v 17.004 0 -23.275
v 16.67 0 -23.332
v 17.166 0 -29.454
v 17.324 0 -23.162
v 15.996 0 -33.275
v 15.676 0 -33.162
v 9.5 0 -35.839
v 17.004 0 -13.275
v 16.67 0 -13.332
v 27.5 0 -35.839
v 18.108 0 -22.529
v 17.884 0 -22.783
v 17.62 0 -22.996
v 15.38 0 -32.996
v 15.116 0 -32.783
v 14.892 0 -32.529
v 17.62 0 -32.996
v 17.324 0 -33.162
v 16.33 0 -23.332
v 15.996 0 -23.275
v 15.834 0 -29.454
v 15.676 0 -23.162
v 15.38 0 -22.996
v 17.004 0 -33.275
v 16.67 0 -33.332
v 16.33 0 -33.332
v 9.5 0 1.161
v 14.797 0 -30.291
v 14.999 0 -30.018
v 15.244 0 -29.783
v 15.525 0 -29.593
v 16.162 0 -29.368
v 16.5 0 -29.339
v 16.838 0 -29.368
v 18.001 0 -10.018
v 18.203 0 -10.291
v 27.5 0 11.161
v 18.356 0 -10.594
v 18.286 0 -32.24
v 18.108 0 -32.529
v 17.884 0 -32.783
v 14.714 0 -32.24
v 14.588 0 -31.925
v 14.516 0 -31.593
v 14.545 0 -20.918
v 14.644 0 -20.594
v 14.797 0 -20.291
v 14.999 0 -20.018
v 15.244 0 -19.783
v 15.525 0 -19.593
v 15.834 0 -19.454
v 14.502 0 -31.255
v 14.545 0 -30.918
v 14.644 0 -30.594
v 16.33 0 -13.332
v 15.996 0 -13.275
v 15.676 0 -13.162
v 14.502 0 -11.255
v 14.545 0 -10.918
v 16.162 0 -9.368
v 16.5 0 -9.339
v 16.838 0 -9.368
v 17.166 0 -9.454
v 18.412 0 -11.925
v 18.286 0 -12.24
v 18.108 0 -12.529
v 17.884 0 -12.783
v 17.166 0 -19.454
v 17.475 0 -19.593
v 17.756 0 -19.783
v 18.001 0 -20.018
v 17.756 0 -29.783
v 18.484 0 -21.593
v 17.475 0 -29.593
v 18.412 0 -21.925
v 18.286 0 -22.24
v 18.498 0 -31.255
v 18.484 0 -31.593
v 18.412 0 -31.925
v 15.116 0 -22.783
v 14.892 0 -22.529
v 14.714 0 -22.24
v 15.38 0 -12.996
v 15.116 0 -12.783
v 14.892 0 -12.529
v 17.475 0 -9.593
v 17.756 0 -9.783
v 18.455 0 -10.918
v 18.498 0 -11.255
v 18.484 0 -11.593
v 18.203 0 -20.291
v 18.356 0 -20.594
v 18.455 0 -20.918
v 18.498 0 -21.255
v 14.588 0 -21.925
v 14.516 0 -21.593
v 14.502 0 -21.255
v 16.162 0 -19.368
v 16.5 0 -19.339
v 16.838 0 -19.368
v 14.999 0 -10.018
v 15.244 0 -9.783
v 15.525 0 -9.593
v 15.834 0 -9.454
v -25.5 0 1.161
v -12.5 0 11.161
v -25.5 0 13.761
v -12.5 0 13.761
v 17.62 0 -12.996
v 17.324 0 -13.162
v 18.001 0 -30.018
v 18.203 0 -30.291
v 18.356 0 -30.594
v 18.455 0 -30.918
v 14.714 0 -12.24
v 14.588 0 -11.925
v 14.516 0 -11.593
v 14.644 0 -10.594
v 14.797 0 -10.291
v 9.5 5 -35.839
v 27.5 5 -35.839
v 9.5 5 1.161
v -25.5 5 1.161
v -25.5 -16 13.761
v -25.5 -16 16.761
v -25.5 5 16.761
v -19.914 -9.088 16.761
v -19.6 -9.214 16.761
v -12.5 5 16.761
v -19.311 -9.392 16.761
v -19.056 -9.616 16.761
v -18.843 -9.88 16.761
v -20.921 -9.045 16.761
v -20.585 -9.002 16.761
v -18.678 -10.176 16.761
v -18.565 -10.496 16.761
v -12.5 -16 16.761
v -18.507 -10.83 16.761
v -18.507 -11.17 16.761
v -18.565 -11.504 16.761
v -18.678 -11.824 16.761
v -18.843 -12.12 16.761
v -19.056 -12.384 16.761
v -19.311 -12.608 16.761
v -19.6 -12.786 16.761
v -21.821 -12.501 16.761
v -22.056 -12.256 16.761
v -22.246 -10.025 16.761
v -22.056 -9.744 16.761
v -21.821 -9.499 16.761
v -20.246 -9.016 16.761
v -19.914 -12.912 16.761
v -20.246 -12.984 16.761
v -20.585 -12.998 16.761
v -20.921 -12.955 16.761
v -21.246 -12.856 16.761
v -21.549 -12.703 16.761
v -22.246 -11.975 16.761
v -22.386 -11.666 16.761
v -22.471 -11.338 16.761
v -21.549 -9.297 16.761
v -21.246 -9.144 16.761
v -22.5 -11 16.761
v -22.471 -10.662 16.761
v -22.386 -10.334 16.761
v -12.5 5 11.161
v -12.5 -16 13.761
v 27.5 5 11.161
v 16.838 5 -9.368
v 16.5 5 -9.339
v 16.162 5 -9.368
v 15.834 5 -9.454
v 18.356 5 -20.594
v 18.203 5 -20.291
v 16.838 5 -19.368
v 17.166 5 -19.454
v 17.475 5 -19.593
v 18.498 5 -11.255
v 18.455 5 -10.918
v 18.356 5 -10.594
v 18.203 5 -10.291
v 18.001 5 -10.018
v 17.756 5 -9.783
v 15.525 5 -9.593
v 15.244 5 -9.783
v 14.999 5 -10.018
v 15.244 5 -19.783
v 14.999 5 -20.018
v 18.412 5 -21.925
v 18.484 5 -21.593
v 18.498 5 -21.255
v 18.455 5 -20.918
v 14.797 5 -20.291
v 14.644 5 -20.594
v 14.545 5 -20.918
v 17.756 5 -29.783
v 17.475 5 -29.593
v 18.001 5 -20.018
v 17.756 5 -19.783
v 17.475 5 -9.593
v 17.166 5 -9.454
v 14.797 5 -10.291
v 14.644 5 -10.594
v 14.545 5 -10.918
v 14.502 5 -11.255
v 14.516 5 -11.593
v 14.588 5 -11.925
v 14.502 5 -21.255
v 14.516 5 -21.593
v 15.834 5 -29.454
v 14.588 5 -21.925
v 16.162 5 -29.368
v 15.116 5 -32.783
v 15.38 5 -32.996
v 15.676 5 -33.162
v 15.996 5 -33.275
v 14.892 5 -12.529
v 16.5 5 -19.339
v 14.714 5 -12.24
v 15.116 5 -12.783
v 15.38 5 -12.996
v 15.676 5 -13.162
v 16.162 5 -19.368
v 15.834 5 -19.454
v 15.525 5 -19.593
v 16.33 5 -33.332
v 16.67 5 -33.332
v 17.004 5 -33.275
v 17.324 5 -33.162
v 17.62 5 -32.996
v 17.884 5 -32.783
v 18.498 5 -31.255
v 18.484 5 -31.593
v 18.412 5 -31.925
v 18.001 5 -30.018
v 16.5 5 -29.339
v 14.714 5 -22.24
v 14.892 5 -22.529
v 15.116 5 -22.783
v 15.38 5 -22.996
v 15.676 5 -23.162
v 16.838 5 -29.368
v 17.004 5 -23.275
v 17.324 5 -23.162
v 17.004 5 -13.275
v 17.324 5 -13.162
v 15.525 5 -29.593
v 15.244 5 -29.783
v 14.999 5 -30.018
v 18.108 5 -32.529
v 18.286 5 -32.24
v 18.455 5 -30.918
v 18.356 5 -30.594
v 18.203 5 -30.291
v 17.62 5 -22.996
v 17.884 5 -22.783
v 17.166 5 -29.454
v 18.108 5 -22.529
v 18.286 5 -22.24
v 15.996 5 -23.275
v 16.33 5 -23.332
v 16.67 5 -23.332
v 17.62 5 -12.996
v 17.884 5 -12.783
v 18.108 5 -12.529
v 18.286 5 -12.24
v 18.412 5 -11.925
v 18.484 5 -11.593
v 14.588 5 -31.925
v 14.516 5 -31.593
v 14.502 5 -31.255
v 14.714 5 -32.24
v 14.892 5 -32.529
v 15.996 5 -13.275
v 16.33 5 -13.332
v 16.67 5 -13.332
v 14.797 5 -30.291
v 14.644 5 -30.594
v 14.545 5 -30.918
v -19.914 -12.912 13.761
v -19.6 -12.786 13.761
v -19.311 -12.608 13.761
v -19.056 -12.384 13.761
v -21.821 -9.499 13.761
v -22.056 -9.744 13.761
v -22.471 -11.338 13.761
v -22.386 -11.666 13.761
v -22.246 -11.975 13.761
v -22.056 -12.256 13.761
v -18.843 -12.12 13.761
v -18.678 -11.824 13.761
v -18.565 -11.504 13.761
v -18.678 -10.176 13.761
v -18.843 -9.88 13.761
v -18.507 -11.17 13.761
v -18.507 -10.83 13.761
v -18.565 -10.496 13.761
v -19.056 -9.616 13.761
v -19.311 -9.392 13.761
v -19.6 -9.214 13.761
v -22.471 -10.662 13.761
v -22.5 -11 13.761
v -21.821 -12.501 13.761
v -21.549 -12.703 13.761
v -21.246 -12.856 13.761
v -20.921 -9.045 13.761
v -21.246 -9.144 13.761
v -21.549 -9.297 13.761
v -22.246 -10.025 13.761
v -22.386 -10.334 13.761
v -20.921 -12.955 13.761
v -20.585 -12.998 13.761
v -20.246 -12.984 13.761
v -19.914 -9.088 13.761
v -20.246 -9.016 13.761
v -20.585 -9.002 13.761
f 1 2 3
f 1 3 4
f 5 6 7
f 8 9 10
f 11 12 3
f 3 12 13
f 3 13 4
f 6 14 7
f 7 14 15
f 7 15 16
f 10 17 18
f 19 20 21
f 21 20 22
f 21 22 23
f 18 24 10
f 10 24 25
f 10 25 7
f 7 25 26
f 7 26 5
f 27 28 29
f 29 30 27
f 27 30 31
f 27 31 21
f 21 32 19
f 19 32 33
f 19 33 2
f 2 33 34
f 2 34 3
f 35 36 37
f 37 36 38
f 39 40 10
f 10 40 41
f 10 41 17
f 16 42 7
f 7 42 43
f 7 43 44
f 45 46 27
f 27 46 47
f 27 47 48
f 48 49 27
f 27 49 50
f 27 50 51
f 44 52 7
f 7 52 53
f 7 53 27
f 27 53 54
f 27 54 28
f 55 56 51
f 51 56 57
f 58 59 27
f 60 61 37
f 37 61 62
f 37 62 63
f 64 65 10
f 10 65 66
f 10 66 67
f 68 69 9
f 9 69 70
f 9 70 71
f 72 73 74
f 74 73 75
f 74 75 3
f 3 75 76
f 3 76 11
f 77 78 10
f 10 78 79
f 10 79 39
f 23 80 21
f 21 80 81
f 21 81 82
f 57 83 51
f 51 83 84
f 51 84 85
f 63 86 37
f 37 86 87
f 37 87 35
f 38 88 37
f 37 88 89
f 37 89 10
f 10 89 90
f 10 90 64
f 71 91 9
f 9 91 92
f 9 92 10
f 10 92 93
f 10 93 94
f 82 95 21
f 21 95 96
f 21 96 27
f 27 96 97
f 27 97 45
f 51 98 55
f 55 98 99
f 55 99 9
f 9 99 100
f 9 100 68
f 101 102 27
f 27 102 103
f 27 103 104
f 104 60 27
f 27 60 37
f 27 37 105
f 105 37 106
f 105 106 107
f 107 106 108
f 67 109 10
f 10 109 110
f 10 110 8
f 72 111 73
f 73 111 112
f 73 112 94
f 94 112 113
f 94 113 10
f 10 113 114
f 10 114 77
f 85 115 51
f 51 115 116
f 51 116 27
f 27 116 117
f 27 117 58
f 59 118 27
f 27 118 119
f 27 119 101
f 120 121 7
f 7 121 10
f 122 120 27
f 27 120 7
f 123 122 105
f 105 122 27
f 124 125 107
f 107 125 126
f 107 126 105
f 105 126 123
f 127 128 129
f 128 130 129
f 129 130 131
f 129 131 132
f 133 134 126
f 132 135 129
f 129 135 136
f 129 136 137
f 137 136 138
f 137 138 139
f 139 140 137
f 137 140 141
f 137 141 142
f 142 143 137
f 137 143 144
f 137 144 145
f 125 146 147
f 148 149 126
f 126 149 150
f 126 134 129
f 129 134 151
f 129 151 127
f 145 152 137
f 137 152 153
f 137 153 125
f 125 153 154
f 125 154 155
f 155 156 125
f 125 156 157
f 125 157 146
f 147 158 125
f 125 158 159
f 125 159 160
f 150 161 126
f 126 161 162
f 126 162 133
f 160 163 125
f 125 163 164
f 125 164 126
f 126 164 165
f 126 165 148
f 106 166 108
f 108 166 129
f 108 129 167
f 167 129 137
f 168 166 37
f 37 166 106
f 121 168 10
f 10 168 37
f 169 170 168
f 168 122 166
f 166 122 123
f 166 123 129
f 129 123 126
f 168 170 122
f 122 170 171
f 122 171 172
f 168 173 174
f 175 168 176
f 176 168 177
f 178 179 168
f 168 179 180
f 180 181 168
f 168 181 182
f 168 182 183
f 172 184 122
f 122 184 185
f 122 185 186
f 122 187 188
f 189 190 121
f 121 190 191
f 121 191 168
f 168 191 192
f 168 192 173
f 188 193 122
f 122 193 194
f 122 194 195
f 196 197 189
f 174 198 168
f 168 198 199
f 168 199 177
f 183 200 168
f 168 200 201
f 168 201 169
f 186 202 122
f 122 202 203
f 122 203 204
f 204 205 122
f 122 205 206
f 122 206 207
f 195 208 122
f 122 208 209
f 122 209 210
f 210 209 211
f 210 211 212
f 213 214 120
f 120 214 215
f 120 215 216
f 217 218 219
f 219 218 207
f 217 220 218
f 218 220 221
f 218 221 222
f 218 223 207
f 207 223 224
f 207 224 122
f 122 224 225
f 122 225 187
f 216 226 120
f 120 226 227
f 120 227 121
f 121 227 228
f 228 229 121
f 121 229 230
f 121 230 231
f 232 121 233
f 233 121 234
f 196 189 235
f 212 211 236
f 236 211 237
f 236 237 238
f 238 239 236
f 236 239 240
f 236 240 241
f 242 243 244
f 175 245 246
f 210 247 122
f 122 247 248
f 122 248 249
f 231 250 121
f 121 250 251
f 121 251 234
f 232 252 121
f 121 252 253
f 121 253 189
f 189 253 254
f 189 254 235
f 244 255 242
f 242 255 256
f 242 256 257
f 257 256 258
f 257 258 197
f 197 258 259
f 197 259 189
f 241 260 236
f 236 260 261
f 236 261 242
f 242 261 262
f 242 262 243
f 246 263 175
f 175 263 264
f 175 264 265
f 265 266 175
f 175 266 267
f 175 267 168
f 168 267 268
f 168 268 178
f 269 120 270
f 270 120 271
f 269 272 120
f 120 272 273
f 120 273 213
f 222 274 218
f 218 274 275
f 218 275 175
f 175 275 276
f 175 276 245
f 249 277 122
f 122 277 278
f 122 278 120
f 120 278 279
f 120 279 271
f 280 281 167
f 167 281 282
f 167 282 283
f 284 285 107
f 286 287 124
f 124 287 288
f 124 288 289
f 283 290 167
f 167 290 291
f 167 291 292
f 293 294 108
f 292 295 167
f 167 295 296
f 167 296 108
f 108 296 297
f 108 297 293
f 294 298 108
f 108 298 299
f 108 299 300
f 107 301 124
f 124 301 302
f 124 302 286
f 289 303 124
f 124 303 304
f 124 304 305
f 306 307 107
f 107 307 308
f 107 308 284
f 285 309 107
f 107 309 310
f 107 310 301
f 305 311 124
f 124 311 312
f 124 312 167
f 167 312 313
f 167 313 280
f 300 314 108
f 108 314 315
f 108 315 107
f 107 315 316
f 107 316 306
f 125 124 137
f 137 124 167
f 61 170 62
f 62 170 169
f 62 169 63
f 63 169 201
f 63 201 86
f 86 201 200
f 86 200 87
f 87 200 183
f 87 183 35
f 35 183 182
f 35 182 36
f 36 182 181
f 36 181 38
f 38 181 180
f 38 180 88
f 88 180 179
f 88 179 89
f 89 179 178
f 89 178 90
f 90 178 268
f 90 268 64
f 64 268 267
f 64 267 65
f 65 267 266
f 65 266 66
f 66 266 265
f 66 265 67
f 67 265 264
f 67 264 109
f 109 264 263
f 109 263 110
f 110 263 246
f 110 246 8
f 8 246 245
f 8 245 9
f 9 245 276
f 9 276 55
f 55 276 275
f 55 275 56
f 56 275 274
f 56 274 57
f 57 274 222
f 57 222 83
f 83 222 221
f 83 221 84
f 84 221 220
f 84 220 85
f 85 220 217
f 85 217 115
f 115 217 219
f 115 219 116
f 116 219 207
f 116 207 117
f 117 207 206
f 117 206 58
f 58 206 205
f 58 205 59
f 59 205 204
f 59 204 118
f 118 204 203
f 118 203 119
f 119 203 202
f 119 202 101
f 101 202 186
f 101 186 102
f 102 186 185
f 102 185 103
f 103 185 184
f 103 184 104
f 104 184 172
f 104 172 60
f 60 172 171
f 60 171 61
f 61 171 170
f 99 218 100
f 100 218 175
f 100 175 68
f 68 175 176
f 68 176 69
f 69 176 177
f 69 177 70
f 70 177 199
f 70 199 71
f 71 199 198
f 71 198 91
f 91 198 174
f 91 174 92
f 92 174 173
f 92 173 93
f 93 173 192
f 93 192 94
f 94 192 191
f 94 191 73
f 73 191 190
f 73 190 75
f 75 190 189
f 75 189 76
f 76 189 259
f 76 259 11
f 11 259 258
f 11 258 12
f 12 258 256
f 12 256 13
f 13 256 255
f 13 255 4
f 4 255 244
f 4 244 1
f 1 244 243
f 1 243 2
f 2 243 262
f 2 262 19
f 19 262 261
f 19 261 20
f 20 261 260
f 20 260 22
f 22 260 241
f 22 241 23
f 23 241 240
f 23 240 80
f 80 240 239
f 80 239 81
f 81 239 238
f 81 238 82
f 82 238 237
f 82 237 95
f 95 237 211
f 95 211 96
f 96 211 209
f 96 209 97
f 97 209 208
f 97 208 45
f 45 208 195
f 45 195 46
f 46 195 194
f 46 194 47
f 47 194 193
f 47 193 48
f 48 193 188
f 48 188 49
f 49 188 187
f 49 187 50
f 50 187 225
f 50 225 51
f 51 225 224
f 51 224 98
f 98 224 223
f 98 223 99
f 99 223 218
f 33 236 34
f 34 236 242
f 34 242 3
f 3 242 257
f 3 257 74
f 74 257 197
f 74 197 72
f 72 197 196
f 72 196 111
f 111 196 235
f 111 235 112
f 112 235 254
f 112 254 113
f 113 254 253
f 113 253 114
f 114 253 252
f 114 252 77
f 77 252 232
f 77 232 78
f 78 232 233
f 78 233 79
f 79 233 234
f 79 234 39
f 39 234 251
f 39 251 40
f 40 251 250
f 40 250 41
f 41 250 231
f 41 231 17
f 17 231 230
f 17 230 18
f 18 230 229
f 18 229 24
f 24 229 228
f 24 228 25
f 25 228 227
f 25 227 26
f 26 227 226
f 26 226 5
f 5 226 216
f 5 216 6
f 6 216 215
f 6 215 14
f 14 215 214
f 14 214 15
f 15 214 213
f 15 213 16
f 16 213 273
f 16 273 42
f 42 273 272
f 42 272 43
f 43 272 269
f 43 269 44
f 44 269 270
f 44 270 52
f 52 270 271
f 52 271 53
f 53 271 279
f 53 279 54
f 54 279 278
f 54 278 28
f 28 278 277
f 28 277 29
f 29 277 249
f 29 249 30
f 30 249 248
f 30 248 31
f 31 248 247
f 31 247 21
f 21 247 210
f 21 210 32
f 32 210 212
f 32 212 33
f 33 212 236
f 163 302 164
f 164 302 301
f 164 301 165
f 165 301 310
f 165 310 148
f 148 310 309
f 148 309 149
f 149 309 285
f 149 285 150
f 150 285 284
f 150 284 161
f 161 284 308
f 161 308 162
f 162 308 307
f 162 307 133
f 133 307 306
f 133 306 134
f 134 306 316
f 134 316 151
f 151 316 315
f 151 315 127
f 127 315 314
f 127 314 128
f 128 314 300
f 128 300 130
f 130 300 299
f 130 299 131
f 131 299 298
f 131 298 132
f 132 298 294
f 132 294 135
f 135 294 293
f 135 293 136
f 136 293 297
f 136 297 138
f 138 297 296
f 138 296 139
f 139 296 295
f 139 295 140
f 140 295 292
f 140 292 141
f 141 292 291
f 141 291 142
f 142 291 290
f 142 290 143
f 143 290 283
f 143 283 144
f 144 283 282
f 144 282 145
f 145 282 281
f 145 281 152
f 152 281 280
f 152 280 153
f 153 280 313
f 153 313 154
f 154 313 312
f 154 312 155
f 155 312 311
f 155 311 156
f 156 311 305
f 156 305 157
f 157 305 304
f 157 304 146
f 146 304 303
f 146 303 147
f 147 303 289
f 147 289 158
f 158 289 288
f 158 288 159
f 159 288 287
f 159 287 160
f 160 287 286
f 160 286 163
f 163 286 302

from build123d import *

# Parameters (mm, degrees)
SALIENTE_EXTRUIR1_DEPTH = 5
CROQUIS2_W              = 13
CROQUIS2_H              = 3
SALIENTE_EXTRUIR2_DEPTH = 16
CROQUIS3_R              = 2
CORTAR_EXTRUIR1_DEPTH   = 16
CROQUIS7_R              = 2
CORTAR_EXTRUIR2_DEPTH   = 16


with BuildPart() as part:
    # Croquis1 → Saliente-Extruir1 (new body)
    with BuildSketch(Plane(origin=(0, 0, 0), x_dir=(1, 0, 0), z_dir=(0, 1, 0))):
        Polygon((27.5, -11.160546845), (-12.5, -11.160546845), (-12.5, -16.760546845), (-25.5, -16.760546845), (-25.5, -1.160546845), (9.5, -1.160546845), (9.5, 35.839453155), (27.5, 35.839453155), align=None)
    extrude(amount=SALIENTE_EXTRUIR1_DEPTH)

    # Croquis2 → Saliente-Extruir2 (add)
    with BuildSketch(Plane(origin=(0, 0, 0), x_dir=(-1, 0, 0), z_dir=(0, -1, 0))):
        with Locations((19, -15.260546845)):
            Rectangle(CROQUIS2_W, CROQUIS2_H)
    extrude(amount=SALIENTE_EXTRUIR2_DEPTH)

    # Croquis3 → Cortar-Extruir1 (cut)
    with BuildSketch(Plane(origin=(0, 5, 0), x_dir=(1, 0, 0), z_dir=(0, 1, 0))):
        with Locations(Location((16.5, 31.339453155, 0), (0, 0, 270))):
            Circle(CROQUIS3_R)
        with Locations(Location((16.5, 21.339453155, 0), (0, 0, 270))):
            Circle(CROQUIS3_R)
        with Locations(Location((16.5, 11.339453155, 0), (0, 0, 270))):
            Circle(CROQUIS3_R)
    extrude(amount=-CORTAR_EXTRUIR1_DEPTH, mode=Mode.SUBTRACT)

    # Croquis7 → Cortar-Extruir2 (cut)
    with BuildSketch(Plane(origin=(0, 0, 13.760546845), x_dir=(-1, 0, 0), z_dir=(0, 0, -1))):
        with Locations((20.5, -11)):
            Circle(CROQUIS7_R)
    extrude(amount=-CORTAR_EXTRUIR2_DEPTH, mode=Mode.SUBTRACT)


solid = part.part
